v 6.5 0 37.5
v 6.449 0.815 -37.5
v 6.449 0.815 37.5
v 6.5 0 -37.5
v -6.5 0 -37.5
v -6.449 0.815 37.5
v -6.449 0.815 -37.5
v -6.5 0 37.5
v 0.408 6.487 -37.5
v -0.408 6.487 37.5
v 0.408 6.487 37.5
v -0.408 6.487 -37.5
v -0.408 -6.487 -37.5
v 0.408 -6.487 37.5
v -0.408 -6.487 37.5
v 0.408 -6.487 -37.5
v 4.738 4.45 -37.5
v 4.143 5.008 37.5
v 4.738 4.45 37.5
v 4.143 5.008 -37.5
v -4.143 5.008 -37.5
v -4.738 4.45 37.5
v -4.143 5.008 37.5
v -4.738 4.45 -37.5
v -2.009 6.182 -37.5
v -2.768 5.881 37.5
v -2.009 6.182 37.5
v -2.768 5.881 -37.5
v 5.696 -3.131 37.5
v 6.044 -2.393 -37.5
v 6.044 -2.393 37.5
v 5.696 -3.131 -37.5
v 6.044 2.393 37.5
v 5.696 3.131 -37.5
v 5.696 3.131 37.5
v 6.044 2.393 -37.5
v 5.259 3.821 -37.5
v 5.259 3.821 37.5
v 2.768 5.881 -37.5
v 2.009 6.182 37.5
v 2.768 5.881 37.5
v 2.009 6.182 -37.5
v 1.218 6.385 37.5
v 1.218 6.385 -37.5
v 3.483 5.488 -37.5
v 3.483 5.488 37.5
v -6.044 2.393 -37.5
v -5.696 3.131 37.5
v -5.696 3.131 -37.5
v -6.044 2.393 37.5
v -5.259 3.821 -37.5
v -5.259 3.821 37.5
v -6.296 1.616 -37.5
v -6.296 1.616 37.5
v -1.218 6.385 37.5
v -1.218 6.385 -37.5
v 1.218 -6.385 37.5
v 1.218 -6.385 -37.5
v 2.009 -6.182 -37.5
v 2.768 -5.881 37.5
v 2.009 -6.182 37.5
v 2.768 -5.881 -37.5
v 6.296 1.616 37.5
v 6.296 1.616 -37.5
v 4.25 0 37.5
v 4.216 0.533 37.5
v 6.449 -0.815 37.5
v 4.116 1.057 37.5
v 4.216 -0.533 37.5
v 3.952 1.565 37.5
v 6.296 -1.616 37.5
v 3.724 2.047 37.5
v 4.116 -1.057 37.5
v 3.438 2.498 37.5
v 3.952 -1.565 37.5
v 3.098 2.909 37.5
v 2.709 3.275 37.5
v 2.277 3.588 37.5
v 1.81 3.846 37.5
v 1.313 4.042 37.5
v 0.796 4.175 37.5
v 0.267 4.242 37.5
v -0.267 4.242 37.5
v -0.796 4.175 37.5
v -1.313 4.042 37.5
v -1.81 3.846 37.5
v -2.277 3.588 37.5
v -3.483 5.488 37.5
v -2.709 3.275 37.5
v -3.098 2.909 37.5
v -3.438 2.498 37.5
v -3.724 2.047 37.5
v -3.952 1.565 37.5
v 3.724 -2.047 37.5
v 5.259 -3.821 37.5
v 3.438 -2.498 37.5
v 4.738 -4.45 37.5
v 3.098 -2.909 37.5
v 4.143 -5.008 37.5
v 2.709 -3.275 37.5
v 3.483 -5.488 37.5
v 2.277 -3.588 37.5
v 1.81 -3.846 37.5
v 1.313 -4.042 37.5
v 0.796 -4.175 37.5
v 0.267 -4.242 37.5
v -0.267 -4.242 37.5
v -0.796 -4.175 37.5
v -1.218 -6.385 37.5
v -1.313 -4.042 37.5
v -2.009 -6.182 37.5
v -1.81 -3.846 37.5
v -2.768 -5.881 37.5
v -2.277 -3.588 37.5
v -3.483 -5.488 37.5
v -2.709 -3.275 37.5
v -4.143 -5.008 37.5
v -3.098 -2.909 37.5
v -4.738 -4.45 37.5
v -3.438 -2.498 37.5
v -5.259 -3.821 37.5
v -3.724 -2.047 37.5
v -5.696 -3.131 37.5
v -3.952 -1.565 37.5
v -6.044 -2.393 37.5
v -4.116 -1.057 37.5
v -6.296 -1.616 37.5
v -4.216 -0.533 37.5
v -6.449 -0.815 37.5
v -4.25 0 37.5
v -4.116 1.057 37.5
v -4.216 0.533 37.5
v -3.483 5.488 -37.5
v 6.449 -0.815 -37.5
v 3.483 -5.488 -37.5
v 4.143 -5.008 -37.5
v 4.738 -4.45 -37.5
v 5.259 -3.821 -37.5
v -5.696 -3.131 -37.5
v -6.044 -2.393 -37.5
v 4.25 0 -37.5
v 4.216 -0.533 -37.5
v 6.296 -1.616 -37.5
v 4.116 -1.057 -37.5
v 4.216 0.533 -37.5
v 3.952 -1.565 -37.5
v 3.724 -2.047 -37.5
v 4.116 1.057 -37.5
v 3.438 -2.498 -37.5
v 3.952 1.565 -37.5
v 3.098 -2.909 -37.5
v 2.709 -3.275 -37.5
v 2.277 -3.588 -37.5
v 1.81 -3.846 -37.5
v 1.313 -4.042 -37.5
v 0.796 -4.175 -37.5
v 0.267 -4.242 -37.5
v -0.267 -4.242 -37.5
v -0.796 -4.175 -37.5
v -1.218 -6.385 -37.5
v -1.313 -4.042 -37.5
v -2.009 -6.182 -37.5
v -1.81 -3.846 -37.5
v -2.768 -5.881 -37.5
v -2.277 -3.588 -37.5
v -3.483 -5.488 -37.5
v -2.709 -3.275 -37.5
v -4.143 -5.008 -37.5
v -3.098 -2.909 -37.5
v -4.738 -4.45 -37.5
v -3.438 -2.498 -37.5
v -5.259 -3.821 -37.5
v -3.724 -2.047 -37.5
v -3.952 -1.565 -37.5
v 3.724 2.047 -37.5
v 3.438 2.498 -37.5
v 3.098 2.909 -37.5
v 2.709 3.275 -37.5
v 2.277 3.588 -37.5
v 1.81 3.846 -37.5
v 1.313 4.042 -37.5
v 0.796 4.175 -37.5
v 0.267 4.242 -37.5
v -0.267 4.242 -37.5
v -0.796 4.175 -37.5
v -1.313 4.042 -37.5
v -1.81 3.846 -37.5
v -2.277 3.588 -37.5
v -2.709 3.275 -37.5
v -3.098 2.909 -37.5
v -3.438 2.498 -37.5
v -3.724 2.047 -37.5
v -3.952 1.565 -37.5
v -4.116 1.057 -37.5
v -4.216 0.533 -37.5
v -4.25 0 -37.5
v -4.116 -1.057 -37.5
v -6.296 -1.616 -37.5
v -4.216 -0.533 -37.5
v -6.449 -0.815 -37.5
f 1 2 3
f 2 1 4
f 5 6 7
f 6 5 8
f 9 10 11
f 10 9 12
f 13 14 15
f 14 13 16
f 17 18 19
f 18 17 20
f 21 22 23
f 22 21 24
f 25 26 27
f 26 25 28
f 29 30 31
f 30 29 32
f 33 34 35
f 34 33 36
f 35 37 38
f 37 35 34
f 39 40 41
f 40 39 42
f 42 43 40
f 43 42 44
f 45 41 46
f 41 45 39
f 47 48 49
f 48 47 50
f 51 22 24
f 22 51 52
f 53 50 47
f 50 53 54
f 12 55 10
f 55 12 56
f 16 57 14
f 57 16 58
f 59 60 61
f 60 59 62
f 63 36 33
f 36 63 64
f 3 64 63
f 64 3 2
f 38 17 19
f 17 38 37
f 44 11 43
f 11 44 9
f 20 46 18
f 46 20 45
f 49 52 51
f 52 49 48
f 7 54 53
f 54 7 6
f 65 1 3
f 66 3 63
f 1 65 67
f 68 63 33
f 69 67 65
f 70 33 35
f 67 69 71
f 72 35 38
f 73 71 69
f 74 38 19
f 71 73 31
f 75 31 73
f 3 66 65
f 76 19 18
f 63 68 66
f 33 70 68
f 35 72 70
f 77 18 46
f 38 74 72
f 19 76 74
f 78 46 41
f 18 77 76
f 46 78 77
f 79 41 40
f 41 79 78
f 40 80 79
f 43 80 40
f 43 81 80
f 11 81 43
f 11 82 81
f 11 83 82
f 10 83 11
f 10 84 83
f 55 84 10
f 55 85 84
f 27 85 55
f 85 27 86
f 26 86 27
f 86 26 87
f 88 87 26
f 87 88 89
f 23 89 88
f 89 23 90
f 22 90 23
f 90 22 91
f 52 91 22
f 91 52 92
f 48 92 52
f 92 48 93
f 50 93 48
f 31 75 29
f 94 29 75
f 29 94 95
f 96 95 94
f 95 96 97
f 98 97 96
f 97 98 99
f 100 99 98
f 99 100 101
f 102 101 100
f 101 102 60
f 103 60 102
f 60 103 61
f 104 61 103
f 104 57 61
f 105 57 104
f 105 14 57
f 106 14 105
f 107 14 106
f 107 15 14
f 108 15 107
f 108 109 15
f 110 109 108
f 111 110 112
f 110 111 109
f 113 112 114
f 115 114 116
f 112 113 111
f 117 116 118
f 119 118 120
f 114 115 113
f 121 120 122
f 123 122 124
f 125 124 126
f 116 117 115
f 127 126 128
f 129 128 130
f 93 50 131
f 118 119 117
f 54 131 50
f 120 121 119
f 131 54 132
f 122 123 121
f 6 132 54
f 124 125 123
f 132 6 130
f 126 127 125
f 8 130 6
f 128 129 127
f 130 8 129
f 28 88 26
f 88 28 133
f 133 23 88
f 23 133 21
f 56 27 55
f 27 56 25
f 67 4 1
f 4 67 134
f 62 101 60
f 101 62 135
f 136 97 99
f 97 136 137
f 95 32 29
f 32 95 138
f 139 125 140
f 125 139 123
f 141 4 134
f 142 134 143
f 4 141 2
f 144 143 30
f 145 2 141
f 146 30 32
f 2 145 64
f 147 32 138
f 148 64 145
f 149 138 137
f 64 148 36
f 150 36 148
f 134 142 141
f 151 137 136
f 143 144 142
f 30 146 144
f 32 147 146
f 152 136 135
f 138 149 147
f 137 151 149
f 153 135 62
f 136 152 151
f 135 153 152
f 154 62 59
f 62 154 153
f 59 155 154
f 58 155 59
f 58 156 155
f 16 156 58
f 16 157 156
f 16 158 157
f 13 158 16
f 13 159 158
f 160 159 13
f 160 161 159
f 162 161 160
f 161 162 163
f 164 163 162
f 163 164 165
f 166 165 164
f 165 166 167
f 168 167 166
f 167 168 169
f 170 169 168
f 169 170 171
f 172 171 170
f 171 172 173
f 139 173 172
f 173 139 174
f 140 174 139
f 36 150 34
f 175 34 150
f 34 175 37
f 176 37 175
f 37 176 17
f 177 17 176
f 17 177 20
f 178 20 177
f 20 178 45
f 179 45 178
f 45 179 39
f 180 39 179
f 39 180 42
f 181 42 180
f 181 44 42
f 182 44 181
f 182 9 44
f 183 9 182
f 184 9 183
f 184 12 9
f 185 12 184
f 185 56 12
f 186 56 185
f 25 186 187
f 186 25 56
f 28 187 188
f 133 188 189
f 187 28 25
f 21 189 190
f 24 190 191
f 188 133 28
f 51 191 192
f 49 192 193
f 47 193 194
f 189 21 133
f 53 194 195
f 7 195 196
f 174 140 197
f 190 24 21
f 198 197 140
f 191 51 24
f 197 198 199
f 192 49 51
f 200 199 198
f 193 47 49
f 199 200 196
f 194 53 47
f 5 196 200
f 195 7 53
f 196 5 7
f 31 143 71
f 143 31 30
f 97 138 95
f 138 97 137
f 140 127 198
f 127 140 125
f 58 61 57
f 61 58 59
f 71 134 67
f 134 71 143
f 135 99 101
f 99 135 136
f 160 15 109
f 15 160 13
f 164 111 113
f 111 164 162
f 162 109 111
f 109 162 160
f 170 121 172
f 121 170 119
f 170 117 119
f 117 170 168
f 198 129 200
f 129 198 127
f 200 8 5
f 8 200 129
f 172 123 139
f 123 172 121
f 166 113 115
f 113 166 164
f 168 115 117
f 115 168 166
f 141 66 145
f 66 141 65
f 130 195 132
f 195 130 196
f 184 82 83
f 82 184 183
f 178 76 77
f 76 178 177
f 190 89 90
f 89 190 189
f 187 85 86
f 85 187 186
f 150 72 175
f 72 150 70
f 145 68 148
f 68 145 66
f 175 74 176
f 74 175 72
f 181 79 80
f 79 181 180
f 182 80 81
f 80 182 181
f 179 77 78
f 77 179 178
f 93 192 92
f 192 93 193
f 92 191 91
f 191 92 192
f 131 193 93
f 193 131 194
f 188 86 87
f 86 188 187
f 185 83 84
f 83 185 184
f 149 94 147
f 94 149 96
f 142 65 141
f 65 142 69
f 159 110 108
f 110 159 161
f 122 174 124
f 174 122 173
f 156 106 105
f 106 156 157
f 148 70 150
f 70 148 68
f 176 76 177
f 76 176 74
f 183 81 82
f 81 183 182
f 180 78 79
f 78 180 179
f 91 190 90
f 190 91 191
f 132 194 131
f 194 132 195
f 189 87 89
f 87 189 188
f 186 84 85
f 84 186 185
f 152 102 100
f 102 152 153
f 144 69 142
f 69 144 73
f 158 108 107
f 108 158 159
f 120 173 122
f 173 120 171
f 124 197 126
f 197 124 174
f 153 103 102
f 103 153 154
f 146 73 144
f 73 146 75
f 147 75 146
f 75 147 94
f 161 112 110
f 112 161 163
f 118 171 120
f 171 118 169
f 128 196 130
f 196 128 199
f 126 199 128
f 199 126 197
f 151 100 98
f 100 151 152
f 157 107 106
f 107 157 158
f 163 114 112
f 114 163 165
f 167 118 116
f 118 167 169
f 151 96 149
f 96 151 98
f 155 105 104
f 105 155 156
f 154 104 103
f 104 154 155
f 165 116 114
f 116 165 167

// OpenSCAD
$fn = 50;


difference() {
	union() {
		translate(v = [0, 0, -37.5000000000]) {
			cylinder(h = 75, r = 6.5000000000);
		}
	}
	union() {
		translate(v = [0, 0, -100.0000000000]) {
			cylinder(h = 200, r = 4.2500000000);
		}
	}
}
